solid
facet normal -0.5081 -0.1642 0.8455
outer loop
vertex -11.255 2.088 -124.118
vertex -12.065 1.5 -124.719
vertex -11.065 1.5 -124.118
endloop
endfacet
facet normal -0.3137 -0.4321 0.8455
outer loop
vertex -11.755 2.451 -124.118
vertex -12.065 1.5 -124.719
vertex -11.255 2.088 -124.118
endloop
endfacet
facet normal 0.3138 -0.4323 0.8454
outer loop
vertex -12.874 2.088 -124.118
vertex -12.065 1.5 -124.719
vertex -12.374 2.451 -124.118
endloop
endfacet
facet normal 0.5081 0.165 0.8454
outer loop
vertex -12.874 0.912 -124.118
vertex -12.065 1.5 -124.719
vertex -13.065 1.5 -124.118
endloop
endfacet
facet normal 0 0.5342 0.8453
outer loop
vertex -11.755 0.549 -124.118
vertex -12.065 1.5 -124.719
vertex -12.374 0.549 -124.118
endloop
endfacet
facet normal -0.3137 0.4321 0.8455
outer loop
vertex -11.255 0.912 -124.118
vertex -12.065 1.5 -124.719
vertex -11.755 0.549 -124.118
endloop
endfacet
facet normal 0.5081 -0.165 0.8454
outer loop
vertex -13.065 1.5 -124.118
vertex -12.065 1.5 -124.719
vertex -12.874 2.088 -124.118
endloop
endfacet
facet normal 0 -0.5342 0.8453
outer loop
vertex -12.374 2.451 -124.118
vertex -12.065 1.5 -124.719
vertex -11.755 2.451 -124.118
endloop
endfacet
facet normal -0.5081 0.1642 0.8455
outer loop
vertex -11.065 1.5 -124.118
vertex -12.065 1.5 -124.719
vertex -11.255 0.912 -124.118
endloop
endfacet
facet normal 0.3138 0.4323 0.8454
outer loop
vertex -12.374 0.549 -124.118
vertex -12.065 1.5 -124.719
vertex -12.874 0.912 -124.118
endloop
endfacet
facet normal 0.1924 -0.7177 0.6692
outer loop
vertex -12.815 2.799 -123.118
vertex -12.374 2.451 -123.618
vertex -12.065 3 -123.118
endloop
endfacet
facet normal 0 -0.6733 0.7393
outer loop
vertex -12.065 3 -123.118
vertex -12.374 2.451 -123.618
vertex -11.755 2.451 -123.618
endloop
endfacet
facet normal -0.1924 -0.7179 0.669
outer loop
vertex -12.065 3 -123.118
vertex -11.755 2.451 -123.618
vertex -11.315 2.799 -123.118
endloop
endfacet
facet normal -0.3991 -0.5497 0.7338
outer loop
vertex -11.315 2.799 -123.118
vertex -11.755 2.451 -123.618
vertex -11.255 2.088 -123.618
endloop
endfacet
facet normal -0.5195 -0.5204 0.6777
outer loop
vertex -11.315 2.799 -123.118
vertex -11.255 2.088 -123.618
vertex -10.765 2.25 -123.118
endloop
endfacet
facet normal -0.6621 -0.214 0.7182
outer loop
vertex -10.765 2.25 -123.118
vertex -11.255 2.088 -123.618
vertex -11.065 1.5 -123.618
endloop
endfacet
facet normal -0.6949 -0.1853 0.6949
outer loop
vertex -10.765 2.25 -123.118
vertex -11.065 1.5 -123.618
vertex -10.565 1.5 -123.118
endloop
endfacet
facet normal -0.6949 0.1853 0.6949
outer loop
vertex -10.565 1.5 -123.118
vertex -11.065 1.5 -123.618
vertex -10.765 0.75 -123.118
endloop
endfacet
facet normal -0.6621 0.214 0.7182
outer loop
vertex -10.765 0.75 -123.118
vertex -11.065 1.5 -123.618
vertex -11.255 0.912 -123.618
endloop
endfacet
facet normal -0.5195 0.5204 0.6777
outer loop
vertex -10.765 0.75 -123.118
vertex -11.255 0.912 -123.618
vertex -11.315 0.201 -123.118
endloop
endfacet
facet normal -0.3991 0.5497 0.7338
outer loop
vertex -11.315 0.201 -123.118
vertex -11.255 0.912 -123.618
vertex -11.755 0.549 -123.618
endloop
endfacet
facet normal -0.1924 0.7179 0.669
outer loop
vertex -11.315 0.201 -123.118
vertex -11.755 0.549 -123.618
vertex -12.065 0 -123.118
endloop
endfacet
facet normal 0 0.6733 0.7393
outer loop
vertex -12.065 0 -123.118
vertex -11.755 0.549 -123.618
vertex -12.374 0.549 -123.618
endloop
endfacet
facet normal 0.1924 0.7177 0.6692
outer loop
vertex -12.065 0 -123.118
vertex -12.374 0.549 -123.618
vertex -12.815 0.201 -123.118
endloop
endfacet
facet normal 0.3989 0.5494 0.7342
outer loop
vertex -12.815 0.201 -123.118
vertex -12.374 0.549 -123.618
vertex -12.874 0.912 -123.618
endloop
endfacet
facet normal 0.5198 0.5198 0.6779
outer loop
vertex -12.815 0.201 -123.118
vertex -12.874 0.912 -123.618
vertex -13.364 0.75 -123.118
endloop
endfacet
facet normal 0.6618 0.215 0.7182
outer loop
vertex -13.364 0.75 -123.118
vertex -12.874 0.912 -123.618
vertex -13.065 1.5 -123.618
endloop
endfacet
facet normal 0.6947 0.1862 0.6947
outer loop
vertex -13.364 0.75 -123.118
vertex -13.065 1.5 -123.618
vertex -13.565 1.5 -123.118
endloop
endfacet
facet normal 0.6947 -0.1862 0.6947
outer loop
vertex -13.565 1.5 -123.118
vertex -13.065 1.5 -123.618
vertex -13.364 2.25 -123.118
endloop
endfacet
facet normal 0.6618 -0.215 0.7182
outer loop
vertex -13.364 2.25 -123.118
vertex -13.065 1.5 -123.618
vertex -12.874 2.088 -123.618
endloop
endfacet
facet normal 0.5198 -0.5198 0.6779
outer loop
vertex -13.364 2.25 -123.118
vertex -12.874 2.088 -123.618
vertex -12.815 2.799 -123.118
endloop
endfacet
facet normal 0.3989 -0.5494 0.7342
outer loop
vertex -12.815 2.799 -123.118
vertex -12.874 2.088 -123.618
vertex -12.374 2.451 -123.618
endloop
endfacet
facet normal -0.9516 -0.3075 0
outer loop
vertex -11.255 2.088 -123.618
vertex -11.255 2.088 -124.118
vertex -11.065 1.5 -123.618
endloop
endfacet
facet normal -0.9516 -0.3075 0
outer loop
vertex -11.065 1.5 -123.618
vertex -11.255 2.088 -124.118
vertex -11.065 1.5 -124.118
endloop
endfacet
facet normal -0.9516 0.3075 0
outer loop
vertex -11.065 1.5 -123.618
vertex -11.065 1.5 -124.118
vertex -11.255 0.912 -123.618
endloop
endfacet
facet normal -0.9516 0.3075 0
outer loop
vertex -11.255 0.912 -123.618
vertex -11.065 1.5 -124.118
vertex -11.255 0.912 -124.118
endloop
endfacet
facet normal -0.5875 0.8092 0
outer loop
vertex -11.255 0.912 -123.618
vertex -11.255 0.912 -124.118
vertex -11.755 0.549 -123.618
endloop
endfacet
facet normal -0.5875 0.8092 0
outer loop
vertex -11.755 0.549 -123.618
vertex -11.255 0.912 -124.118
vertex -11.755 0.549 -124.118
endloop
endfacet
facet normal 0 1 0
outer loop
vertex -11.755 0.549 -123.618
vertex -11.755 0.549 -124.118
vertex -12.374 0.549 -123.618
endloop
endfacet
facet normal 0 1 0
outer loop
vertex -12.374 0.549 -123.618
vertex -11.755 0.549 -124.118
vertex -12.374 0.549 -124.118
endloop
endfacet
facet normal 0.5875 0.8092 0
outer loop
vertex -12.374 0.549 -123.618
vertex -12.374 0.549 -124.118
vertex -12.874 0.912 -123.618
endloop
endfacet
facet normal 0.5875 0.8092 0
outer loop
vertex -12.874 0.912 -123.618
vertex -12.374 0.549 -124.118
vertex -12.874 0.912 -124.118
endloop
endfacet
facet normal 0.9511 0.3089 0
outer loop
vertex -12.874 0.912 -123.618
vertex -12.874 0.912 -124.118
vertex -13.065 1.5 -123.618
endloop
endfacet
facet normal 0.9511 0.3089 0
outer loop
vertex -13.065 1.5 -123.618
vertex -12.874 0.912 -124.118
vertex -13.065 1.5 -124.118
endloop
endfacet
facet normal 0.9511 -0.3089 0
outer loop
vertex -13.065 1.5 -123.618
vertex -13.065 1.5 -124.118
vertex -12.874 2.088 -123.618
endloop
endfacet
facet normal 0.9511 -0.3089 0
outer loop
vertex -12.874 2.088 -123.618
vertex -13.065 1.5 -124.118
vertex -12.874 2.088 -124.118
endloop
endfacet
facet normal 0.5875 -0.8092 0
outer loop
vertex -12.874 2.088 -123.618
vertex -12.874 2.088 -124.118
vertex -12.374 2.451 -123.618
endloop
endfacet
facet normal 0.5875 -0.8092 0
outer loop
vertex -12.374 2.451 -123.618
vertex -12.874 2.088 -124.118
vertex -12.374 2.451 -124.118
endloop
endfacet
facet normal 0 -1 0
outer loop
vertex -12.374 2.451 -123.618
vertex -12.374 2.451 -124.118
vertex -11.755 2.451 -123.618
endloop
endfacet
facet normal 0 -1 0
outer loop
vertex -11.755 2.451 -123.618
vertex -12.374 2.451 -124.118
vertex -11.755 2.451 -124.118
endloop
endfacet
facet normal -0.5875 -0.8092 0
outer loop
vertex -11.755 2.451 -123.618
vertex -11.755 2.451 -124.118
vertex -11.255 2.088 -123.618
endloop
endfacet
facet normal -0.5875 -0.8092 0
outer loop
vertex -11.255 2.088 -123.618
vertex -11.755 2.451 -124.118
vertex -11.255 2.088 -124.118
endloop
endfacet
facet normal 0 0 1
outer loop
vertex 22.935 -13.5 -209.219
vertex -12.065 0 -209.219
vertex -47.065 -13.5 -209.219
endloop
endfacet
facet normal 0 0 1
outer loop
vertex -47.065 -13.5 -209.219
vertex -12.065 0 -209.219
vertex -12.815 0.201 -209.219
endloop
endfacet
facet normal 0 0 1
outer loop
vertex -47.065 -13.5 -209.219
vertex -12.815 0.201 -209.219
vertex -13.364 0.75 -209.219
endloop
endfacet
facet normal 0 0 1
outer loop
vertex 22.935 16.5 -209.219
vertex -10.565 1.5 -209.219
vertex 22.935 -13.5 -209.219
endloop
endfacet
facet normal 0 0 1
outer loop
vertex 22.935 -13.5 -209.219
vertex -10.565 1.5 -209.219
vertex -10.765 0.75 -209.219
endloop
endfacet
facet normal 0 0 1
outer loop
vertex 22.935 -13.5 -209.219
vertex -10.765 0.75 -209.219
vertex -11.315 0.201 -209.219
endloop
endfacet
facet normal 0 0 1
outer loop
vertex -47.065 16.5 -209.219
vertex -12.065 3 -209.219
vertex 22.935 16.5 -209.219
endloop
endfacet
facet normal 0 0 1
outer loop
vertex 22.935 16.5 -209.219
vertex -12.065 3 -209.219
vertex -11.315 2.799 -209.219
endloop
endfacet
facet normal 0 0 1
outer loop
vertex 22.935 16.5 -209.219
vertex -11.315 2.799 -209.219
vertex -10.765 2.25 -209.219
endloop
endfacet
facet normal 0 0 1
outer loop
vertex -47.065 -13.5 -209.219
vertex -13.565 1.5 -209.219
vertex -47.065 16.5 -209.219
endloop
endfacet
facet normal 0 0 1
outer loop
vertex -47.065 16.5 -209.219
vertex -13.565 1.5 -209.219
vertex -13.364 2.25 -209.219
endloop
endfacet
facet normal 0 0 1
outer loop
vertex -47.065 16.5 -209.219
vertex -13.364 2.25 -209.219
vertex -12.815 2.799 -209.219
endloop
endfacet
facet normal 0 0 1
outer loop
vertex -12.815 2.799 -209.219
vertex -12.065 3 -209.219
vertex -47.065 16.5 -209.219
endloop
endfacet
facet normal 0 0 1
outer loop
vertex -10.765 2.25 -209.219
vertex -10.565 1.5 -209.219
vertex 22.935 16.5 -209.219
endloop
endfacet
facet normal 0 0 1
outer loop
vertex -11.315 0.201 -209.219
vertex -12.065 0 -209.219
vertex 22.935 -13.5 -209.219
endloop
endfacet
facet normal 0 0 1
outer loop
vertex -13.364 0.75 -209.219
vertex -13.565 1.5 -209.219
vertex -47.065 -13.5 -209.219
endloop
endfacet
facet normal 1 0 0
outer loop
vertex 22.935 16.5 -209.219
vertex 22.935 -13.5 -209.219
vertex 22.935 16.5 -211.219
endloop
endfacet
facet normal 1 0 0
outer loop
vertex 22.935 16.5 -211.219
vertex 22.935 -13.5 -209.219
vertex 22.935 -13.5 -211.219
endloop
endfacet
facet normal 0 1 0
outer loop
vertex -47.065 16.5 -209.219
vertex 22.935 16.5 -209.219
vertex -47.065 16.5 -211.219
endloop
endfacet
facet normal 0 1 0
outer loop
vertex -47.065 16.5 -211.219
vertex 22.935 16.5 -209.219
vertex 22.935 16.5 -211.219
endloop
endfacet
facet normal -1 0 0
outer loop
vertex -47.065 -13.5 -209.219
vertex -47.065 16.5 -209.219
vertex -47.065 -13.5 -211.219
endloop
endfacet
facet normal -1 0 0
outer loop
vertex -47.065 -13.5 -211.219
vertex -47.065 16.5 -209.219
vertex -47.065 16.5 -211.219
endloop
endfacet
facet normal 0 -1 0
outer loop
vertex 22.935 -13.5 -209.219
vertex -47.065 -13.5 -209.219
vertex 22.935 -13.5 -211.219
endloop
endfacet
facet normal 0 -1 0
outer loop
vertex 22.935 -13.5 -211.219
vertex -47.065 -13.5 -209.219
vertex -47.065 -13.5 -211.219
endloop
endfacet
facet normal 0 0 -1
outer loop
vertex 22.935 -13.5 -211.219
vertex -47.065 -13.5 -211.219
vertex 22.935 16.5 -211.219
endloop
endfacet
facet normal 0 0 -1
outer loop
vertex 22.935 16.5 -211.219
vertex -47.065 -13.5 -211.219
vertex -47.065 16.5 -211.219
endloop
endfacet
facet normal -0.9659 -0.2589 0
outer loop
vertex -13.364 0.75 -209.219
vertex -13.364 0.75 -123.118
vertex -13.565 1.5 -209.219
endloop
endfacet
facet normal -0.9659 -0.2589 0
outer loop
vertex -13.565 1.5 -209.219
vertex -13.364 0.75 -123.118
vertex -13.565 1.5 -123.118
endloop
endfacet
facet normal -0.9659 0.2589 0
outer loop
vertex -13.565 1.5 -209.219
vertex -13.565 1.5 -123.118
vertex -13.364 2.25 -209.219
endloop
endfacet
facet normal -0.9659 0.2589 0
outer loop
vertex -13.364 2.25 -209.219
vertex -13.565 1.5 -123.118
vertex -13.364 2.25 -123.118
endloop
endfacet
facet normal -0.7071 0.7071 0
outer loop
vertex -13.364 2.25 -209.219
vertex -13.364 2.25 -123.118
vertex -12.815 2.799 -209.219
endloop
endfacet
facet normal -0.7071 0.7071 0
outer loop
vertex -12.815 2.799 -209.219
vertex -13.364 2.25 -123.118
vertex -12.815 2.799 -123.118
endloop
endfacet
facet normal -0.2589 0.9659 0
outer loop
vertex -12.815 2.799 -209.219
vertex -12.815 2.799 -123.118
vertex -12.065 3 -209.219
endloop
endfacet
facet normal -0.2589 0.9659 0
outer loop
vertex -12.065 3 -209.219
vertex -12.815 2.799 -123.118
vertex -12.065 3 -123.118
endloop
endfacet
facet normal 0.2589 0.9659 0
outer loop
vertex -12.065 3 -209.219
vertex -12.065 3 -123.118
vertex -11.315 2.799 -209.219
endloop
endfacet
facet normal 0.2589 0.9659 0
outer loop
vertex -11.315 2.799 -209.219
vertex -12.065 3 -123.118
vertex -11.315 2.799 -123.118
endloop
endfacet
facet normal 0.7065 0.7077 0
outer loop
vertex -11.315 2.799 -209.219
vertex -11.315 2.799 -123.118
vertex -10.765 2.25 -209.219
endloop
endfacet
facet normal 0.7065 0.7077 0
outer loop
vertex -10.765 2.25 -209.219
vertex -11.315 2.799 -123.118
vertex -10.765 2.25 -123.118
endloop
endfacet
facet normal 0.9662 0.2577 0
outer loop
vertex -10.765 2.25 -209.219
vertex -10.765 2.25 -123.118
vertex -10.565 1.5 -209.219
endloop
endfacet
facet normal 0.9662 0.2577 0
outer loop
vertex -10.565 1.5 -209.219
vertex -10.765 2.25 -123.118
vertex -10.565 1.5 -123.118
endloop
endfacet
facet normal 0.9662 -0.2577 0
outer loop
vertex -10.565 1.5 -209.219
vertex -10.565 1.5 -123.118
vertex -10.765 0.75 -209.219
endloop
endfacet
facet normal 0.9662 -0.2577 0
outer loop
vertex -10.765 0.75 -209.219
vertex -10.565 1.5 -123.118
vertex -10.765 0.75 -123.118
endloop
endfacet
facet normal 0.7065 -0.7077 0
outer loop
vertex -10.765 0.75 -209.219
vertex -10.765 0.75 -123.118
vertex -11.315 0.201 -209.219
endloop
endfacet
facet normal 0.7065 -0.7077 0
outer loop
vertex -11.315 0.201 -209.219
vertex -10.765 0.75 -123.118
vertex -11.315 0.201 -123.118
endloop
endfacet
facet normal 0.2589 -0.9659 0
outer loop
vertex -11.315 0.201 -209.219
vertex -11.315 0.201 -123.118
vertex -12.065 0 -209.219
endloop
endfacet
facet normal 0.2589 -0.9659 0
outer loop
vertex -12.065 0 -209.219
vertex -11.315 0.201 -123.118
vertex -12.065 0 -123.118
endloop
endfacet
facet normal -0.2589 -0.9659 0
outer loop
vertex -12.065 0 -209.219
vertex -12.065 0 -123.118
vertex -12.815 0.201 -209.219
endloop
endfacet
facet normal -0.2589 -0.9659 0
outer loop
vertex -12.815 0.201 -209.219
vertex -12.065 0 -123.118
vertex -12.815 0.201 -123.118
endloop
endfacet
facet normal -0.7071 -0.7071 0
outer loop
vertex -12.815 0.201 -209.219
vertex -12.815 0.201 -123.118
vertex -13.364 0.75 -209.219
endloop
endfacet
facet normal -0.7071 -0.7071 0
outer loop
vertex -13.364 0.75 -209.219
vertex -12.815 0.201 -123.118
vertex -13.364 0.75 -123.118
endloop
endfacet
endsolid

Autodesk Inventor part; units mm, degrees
ref_plane "YZ Plane" through (0, 0, 0) normal (1, 0, 0) x (0, 1, 0)
ref_plane "XZ Plane" through (0, 0, 0) normal (0, 1, 0) x (-1, 0, 0)
ref_plane "XY Plane" through (0, 0, 0) normal (0, 0, 1) x (1, 0, 0)
sketch "Skizze1" plane through (0, 0, 0) normal (0, 1, 0) x (-1, 0, 0)
  line L0 (35.5112, -88.3128) -> (35.5112, -108.3128)
  line L1 (35.5112, -108.3128) -> (22.0645, -123.1178)
  line L2 (22.0645, -123.1178) -> (2.0645, -123.1178)
  line L3 (2.0645, -123.1178) -> (-12.7404, -109.6711)
  line L4 (-12.7404, -109.6711) -> (-12.7404, -89.6711)
  line L5 (-12.7404, -89.6711) -> (0.7063, -74.8661)
  line L6 (0.7063, -74.8661) -> (20.7063, -74.8661)
  line L7 (20.7063, -74.8661) -> (35.5112, -88.3128)
  point P0 (0, 0)
  dimension "d0" = 20
  dimension "d1" = 20
  dimension "d2" = 20
  dimension "d3" = 20
  dimension "d4" = 20
  dimension "d5" = 20
  dimension "d6" = 20
  dimension "d7" = 20
extrude "Extrusion1" add sketch "Skizze1" along normal blind 3
sketch "Skizze2" plane through (-2.0645, 0, -123.1178) normal (0, 0, -1) x (-1, 0, 0)
  circle A0 centre (10, 1.5) radius 1.5
  line L0 (0, 3) -> (20, 3) projected
  point P0 (-2.0645, 0)
  dimension "d11" = 3
  dimension "d12" = 1.5
extrude "Extrusion2" add sketch "Skizze2" along normal blind 86.101
sketch "Skizze3" plane through (-12.0645, 1.5, -209.2188) normal (0, 0, -1) x (-1, 0, 0)
  line L0 (-35, -15) -> (35, -15)
  line L1 (35, -15) -> (35, 15)
  line L2 (35, 15) -> (-35, 15)
  line L3 (-35, 15) -> (-35, -15)
  arc A0 (0, -1.5) -> (0, 1.5) centre (0, 0) ccw projected
  line L4 (-35, -15) -> (35, 15) construction
  line L5 (35, -15) -> (-35, 15) construction
  point P0 (-12.0645, -1.5)
  point P1 (-2, -1.5)
  point P2 (-2, 1.5)
  point P3 (2, -1.5)
  dimension "d15" = 70
  dimension "d16" = 30
extrude "Extrusion3" add sketch "Skizze3" along normal blind 2
sketch "Skizze5" plane through (0, 0, 0) normal (0, -1, 0) x (1, 0, 0)
  line L0 (-22.0645, -123.1178) -> (51.5086, -123.1178)
  line L1 (51.5086, -123.1178) -> (51.5086, -51.2705)
  line L2 (51.5086, -51.2705) -> (-22.0645, -51.2705)
  line L3 (-22.0645, -51.2705) -> (-22.0645, -123.1178)
  line L4 (-22.0645, -51.2705) -> (-54.8687, -51.2705)
  line L5 (-54.8687, -51.2705) -> (-54.8687, -123.1178)
  line L6 (-54.8687, -123.1178) -> (-22.0645, -123.1178)
  line L7 (-22.0645, -123.1178) -> (-22.0645, -51.2705)
  point P0 (0, 0)
extrude "Extrusion5" cut sketch "Skizze5" against normal blind 10
sketch "Skizze7" plane through (-12.0645, 1.5, -123.1178) normal (0, 0, 1) x (1, 0, 0)
  circle A0 centre (0, 0) radius 1.5 projected
  point P0 (12.0645, -1.5)
  dimension "d39" = 0
  dimension "d40" = 0
hole "Bohrung2" at (-12.0645, 1.5, -123.1178) direction (0, 0, -1) diameter 2 depth 1 tip angle 118 countersink diameter 3 countersink angle 90
properties part number "Vorfahrtsschild_Teil_Unten"
